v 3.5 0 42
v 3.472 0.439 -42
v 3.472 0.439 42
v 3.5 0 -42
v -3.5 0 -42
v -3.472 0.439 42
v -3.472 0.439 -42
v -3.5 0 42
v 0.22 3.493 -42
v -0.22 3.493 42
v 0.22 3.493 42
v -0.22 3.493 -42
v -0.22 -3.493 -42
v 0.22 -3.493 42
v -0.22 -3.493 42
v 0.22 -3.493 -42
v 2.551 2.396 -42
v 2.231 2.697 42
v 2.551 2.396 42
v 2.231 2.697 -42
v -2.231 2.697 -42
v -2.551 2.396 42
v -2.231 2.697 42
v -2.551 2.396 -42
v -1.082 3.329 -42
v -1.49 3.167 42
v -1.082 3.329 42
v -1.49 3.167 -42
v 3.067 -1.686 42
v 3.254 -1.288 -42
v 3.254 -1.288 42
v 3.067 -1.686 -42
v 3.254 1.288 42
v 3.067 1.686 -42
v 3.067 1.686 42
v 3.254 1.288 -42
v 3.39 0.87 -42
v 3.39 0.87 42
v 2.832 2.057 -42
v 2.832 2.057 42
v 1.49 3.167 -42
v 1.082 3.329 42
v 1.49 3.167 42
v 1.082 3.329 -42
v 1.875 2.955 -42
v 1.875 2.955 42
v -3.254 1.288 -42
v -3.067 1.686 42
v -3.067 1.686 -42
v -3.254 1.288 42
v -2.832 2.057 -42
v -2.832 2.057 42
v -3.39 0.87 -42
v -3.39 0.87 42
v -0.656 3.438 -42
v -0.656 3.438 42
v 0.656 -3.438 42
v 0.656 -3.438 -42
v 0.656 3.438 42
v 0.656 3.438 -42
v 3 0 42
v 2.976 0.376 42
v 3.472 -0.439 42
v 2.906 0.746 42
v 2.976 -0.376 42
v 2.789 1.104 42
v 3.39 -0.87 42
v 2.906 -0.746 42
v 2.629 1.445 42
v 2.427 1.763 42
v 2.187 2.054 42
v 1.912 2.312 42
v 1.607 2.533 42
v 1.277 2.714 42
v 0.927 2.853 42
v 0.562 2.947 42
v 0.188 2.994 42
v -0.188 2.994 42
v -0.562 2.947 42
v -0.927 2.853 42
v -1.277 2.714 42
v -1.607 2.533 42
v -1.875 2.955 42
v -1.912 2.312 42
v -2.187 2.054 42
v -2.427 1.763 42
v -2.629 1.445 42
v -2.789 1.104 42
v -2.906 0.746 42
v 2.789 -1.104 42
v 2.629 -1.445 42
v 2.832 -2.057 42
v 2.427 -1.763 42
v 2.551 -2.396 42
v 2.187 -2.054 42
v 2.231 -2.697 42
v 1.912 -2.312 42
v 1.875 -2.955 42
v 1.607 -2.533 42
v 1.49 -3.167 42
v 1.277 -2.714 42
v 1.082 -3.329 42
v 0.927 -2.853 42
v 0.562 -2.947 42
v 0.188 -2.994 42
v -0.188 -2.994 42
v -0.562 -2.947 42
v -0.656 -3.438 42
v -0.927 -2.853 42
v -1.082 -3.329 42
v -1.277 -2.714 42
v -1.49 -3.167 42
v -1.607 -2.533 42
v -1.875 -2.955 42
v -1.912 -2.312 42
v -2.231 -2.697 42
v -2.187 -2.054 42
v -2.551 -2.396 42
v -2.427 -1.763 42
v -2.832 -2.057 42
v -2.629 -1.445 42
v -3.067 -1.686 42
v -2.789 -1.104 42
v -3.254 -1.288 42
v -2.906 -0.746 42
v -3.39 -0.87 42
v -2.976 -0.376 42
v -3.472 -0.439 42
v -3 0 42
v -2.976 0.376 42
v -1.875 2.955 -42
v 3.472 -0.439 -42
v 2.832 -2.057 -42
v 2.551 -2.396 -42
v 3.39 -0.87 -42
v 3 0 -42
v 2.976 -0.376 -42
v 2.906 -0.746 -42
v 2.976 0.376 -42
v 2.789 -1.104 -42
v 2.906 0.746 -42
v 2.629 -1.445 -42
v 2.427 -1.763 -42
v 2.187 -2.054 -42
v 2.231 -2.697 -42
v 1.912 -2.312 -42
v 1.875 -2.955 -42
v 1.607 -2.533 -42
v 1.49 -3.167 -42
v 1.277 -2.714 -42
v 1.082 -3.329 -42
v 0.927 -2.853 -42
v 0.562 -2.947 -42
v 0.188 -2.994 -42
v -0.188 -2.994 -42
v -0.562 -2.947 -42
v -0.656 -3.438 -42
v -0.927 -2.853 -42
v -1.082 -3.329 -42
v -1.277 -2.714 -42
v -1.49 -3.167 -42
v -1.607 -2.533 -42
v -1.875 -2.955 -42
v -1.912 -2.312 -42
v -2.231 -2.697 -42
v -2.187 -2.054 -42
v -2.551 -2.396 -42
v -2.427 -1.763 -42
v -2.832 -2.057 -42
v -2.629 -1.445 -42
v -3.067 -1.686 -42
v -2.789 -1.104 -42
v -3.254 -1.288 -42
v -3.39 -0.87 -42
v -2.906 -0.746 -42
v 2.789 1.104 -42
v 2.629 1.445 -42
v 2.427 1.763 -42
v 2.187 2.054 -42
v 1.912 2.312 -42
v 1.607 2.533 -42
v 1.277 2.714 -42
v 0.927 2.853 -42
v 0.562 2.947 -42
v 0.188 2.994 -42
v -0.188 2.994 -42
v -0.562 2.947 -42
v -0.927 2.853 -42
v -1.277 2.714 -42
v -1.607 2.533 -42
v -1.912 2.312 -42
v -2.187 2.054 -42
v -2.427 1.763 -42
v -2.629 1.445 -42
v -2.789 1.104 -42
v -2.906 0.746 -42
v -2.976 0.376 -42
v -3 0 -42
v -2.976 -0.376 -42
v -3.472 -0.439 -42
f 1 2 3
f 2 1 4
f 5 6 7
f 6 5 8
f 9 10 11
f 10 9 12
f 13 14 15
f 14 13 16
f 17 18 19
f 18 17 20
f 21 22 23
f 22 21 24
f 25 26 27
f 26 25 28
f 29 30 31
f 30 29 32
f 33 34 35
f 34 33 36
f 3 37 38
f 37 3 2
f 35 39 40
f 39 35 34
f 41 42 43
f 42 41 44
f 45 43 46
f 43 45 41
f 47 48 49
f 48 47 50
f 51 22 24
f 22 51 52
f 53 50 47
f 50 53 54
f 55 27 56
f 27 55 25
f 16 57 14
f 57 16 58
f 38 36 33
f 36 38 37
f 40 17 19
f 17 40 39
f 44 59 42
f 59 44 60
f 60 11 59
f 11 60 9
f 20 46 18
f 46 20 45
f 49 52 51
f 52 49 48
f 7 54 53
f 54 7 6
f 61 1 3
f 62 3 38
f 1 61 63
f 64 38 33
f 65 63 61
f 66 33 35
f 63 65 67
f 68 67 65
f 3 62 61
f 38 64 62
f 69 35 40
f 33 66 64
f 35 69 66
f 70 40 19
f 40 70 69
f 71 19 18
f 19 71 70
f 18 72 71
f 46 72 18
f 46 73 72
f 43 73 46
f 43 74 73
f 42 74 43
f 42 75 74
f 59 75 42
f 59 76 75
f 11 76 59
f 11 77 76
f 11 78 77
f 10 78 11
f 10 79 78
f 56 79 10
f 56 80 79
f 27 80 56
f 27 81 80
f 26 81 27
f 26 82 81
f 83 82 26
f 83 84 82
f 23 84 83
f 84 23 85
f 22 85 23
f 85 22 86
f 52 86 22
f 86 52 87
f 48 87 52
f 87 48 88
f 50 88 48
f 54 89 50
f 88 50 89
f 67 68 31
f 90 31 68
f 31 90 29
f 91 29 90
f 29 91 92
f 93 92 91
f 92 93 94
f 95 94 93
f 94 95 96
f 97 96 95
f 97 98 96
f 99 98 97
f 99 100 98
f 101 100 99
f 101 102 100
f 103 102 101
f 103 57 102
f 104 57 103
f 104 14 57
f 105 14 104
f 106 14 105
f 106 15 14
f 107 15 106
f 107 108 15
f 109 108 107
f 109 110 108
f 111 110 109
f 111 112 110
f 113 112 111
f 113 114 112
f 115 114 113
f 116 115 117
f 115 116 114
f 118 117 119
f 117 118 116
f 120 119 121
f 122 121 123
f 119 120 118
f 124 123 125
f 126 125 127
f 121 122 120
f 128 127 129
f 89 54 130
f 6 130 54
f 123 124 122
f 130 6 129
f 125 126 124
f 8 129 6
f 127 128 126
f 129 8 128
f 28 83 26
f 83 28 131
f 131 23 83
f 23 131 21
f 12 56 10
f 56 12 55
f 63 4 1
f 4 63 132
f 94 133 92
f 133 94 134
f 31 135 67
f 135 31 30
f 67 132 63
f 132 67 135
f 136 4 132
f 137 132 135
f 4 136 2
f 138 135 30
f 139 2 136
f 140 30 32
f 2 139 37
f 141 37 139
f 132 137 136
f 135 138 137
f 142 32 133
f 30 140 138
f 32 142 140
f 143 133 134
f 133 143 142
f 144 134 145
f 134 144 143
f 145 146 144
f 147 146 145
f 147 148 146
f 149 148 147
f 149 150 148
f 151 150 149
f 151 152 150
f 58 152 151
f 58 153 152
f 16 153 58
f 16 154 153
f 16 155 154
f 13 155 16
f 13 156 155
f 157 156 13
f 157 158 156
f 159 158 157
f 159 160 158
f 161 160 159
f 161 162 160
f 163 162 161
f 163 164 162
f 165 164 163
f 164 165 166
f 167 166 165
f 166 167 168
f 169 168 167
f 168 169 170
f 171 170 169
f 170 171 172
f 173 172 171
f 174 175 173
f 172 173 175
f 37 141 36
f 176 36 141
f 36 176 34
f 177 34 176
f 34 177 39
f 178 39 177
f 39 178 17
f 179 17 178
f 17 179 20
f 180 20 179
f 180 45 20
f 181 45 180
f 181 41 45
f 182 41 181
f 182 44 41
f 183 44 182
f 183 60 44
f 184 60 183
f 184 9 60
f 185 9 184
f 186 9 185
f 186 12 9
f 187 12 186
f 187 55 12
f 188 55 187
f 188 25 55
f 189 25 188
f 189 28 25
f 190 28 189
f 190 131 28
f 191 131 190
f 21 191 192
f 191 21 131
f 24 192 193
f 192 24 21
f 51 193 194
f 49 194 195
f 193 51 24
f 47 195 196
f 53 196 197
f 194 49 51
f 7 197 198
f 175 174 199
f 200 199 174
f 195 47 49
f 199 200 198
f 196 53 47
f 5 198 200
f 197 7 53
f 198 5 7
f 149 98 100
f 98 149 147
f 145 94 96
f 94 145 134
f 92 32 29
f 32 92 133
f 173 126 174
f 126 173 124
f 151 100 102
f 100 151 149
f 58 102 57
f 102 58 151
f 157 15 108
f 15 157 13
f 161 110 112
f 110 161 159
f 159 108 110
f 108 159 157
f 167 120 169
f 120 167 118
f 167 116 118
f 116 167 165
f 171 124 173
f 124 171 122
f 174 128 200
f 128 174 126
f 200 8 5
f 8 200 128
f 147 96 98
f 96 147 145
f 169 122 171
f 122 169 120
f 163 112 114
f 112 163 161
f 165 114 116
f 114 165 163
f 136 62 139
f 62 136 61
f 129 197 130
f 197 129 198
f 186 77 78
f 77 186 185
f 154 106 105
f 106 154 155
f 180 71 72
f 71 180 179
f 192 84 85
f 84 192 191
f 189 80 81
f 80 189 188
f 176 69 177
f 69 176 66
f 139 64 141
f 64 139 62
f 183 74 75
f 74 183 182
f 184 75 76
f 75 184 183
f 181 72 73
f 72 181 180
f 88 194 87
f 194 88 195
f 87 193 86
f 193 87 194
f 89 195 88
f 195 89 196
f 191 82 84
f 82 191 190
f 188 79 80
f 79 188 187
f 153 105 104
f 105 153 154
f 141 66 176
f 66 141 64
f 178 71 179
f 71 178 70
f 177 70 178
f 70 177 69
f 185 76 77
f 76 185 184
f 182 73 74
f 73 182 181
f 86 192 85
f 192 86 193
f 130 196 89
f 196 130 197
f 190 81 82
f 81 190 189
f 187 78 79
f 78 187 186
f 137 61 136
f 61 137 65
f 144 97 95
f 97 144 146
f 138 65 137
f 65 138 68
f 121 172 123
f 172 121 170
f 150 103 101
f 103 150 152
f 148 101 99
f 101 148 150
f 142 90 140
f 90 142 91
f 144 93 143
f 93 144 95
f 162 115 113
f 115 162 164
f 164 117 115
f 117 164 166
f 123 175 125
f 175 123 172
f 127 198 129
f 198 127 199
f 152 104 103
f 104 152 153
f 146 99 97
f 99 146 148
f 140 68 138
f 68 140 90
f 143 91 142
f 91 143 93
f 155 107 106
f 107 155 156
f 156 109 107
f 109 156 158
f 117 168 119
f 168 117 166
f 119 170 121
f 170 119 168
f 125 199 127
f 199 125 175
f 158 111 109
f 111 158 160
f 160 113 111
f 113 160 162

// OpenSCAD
$fn = 50;


difference() {
	union() {
		translate(v = [0, 0, -42.0000000000]) {
			cylinder(h = 84, r = 3.5000000000);
		}
	}
	union() {
		translate(v = [0, 0, -100.0000000000]) {
			cylinder(h = 200, r = 3.0000000000);
		}
	}
}
